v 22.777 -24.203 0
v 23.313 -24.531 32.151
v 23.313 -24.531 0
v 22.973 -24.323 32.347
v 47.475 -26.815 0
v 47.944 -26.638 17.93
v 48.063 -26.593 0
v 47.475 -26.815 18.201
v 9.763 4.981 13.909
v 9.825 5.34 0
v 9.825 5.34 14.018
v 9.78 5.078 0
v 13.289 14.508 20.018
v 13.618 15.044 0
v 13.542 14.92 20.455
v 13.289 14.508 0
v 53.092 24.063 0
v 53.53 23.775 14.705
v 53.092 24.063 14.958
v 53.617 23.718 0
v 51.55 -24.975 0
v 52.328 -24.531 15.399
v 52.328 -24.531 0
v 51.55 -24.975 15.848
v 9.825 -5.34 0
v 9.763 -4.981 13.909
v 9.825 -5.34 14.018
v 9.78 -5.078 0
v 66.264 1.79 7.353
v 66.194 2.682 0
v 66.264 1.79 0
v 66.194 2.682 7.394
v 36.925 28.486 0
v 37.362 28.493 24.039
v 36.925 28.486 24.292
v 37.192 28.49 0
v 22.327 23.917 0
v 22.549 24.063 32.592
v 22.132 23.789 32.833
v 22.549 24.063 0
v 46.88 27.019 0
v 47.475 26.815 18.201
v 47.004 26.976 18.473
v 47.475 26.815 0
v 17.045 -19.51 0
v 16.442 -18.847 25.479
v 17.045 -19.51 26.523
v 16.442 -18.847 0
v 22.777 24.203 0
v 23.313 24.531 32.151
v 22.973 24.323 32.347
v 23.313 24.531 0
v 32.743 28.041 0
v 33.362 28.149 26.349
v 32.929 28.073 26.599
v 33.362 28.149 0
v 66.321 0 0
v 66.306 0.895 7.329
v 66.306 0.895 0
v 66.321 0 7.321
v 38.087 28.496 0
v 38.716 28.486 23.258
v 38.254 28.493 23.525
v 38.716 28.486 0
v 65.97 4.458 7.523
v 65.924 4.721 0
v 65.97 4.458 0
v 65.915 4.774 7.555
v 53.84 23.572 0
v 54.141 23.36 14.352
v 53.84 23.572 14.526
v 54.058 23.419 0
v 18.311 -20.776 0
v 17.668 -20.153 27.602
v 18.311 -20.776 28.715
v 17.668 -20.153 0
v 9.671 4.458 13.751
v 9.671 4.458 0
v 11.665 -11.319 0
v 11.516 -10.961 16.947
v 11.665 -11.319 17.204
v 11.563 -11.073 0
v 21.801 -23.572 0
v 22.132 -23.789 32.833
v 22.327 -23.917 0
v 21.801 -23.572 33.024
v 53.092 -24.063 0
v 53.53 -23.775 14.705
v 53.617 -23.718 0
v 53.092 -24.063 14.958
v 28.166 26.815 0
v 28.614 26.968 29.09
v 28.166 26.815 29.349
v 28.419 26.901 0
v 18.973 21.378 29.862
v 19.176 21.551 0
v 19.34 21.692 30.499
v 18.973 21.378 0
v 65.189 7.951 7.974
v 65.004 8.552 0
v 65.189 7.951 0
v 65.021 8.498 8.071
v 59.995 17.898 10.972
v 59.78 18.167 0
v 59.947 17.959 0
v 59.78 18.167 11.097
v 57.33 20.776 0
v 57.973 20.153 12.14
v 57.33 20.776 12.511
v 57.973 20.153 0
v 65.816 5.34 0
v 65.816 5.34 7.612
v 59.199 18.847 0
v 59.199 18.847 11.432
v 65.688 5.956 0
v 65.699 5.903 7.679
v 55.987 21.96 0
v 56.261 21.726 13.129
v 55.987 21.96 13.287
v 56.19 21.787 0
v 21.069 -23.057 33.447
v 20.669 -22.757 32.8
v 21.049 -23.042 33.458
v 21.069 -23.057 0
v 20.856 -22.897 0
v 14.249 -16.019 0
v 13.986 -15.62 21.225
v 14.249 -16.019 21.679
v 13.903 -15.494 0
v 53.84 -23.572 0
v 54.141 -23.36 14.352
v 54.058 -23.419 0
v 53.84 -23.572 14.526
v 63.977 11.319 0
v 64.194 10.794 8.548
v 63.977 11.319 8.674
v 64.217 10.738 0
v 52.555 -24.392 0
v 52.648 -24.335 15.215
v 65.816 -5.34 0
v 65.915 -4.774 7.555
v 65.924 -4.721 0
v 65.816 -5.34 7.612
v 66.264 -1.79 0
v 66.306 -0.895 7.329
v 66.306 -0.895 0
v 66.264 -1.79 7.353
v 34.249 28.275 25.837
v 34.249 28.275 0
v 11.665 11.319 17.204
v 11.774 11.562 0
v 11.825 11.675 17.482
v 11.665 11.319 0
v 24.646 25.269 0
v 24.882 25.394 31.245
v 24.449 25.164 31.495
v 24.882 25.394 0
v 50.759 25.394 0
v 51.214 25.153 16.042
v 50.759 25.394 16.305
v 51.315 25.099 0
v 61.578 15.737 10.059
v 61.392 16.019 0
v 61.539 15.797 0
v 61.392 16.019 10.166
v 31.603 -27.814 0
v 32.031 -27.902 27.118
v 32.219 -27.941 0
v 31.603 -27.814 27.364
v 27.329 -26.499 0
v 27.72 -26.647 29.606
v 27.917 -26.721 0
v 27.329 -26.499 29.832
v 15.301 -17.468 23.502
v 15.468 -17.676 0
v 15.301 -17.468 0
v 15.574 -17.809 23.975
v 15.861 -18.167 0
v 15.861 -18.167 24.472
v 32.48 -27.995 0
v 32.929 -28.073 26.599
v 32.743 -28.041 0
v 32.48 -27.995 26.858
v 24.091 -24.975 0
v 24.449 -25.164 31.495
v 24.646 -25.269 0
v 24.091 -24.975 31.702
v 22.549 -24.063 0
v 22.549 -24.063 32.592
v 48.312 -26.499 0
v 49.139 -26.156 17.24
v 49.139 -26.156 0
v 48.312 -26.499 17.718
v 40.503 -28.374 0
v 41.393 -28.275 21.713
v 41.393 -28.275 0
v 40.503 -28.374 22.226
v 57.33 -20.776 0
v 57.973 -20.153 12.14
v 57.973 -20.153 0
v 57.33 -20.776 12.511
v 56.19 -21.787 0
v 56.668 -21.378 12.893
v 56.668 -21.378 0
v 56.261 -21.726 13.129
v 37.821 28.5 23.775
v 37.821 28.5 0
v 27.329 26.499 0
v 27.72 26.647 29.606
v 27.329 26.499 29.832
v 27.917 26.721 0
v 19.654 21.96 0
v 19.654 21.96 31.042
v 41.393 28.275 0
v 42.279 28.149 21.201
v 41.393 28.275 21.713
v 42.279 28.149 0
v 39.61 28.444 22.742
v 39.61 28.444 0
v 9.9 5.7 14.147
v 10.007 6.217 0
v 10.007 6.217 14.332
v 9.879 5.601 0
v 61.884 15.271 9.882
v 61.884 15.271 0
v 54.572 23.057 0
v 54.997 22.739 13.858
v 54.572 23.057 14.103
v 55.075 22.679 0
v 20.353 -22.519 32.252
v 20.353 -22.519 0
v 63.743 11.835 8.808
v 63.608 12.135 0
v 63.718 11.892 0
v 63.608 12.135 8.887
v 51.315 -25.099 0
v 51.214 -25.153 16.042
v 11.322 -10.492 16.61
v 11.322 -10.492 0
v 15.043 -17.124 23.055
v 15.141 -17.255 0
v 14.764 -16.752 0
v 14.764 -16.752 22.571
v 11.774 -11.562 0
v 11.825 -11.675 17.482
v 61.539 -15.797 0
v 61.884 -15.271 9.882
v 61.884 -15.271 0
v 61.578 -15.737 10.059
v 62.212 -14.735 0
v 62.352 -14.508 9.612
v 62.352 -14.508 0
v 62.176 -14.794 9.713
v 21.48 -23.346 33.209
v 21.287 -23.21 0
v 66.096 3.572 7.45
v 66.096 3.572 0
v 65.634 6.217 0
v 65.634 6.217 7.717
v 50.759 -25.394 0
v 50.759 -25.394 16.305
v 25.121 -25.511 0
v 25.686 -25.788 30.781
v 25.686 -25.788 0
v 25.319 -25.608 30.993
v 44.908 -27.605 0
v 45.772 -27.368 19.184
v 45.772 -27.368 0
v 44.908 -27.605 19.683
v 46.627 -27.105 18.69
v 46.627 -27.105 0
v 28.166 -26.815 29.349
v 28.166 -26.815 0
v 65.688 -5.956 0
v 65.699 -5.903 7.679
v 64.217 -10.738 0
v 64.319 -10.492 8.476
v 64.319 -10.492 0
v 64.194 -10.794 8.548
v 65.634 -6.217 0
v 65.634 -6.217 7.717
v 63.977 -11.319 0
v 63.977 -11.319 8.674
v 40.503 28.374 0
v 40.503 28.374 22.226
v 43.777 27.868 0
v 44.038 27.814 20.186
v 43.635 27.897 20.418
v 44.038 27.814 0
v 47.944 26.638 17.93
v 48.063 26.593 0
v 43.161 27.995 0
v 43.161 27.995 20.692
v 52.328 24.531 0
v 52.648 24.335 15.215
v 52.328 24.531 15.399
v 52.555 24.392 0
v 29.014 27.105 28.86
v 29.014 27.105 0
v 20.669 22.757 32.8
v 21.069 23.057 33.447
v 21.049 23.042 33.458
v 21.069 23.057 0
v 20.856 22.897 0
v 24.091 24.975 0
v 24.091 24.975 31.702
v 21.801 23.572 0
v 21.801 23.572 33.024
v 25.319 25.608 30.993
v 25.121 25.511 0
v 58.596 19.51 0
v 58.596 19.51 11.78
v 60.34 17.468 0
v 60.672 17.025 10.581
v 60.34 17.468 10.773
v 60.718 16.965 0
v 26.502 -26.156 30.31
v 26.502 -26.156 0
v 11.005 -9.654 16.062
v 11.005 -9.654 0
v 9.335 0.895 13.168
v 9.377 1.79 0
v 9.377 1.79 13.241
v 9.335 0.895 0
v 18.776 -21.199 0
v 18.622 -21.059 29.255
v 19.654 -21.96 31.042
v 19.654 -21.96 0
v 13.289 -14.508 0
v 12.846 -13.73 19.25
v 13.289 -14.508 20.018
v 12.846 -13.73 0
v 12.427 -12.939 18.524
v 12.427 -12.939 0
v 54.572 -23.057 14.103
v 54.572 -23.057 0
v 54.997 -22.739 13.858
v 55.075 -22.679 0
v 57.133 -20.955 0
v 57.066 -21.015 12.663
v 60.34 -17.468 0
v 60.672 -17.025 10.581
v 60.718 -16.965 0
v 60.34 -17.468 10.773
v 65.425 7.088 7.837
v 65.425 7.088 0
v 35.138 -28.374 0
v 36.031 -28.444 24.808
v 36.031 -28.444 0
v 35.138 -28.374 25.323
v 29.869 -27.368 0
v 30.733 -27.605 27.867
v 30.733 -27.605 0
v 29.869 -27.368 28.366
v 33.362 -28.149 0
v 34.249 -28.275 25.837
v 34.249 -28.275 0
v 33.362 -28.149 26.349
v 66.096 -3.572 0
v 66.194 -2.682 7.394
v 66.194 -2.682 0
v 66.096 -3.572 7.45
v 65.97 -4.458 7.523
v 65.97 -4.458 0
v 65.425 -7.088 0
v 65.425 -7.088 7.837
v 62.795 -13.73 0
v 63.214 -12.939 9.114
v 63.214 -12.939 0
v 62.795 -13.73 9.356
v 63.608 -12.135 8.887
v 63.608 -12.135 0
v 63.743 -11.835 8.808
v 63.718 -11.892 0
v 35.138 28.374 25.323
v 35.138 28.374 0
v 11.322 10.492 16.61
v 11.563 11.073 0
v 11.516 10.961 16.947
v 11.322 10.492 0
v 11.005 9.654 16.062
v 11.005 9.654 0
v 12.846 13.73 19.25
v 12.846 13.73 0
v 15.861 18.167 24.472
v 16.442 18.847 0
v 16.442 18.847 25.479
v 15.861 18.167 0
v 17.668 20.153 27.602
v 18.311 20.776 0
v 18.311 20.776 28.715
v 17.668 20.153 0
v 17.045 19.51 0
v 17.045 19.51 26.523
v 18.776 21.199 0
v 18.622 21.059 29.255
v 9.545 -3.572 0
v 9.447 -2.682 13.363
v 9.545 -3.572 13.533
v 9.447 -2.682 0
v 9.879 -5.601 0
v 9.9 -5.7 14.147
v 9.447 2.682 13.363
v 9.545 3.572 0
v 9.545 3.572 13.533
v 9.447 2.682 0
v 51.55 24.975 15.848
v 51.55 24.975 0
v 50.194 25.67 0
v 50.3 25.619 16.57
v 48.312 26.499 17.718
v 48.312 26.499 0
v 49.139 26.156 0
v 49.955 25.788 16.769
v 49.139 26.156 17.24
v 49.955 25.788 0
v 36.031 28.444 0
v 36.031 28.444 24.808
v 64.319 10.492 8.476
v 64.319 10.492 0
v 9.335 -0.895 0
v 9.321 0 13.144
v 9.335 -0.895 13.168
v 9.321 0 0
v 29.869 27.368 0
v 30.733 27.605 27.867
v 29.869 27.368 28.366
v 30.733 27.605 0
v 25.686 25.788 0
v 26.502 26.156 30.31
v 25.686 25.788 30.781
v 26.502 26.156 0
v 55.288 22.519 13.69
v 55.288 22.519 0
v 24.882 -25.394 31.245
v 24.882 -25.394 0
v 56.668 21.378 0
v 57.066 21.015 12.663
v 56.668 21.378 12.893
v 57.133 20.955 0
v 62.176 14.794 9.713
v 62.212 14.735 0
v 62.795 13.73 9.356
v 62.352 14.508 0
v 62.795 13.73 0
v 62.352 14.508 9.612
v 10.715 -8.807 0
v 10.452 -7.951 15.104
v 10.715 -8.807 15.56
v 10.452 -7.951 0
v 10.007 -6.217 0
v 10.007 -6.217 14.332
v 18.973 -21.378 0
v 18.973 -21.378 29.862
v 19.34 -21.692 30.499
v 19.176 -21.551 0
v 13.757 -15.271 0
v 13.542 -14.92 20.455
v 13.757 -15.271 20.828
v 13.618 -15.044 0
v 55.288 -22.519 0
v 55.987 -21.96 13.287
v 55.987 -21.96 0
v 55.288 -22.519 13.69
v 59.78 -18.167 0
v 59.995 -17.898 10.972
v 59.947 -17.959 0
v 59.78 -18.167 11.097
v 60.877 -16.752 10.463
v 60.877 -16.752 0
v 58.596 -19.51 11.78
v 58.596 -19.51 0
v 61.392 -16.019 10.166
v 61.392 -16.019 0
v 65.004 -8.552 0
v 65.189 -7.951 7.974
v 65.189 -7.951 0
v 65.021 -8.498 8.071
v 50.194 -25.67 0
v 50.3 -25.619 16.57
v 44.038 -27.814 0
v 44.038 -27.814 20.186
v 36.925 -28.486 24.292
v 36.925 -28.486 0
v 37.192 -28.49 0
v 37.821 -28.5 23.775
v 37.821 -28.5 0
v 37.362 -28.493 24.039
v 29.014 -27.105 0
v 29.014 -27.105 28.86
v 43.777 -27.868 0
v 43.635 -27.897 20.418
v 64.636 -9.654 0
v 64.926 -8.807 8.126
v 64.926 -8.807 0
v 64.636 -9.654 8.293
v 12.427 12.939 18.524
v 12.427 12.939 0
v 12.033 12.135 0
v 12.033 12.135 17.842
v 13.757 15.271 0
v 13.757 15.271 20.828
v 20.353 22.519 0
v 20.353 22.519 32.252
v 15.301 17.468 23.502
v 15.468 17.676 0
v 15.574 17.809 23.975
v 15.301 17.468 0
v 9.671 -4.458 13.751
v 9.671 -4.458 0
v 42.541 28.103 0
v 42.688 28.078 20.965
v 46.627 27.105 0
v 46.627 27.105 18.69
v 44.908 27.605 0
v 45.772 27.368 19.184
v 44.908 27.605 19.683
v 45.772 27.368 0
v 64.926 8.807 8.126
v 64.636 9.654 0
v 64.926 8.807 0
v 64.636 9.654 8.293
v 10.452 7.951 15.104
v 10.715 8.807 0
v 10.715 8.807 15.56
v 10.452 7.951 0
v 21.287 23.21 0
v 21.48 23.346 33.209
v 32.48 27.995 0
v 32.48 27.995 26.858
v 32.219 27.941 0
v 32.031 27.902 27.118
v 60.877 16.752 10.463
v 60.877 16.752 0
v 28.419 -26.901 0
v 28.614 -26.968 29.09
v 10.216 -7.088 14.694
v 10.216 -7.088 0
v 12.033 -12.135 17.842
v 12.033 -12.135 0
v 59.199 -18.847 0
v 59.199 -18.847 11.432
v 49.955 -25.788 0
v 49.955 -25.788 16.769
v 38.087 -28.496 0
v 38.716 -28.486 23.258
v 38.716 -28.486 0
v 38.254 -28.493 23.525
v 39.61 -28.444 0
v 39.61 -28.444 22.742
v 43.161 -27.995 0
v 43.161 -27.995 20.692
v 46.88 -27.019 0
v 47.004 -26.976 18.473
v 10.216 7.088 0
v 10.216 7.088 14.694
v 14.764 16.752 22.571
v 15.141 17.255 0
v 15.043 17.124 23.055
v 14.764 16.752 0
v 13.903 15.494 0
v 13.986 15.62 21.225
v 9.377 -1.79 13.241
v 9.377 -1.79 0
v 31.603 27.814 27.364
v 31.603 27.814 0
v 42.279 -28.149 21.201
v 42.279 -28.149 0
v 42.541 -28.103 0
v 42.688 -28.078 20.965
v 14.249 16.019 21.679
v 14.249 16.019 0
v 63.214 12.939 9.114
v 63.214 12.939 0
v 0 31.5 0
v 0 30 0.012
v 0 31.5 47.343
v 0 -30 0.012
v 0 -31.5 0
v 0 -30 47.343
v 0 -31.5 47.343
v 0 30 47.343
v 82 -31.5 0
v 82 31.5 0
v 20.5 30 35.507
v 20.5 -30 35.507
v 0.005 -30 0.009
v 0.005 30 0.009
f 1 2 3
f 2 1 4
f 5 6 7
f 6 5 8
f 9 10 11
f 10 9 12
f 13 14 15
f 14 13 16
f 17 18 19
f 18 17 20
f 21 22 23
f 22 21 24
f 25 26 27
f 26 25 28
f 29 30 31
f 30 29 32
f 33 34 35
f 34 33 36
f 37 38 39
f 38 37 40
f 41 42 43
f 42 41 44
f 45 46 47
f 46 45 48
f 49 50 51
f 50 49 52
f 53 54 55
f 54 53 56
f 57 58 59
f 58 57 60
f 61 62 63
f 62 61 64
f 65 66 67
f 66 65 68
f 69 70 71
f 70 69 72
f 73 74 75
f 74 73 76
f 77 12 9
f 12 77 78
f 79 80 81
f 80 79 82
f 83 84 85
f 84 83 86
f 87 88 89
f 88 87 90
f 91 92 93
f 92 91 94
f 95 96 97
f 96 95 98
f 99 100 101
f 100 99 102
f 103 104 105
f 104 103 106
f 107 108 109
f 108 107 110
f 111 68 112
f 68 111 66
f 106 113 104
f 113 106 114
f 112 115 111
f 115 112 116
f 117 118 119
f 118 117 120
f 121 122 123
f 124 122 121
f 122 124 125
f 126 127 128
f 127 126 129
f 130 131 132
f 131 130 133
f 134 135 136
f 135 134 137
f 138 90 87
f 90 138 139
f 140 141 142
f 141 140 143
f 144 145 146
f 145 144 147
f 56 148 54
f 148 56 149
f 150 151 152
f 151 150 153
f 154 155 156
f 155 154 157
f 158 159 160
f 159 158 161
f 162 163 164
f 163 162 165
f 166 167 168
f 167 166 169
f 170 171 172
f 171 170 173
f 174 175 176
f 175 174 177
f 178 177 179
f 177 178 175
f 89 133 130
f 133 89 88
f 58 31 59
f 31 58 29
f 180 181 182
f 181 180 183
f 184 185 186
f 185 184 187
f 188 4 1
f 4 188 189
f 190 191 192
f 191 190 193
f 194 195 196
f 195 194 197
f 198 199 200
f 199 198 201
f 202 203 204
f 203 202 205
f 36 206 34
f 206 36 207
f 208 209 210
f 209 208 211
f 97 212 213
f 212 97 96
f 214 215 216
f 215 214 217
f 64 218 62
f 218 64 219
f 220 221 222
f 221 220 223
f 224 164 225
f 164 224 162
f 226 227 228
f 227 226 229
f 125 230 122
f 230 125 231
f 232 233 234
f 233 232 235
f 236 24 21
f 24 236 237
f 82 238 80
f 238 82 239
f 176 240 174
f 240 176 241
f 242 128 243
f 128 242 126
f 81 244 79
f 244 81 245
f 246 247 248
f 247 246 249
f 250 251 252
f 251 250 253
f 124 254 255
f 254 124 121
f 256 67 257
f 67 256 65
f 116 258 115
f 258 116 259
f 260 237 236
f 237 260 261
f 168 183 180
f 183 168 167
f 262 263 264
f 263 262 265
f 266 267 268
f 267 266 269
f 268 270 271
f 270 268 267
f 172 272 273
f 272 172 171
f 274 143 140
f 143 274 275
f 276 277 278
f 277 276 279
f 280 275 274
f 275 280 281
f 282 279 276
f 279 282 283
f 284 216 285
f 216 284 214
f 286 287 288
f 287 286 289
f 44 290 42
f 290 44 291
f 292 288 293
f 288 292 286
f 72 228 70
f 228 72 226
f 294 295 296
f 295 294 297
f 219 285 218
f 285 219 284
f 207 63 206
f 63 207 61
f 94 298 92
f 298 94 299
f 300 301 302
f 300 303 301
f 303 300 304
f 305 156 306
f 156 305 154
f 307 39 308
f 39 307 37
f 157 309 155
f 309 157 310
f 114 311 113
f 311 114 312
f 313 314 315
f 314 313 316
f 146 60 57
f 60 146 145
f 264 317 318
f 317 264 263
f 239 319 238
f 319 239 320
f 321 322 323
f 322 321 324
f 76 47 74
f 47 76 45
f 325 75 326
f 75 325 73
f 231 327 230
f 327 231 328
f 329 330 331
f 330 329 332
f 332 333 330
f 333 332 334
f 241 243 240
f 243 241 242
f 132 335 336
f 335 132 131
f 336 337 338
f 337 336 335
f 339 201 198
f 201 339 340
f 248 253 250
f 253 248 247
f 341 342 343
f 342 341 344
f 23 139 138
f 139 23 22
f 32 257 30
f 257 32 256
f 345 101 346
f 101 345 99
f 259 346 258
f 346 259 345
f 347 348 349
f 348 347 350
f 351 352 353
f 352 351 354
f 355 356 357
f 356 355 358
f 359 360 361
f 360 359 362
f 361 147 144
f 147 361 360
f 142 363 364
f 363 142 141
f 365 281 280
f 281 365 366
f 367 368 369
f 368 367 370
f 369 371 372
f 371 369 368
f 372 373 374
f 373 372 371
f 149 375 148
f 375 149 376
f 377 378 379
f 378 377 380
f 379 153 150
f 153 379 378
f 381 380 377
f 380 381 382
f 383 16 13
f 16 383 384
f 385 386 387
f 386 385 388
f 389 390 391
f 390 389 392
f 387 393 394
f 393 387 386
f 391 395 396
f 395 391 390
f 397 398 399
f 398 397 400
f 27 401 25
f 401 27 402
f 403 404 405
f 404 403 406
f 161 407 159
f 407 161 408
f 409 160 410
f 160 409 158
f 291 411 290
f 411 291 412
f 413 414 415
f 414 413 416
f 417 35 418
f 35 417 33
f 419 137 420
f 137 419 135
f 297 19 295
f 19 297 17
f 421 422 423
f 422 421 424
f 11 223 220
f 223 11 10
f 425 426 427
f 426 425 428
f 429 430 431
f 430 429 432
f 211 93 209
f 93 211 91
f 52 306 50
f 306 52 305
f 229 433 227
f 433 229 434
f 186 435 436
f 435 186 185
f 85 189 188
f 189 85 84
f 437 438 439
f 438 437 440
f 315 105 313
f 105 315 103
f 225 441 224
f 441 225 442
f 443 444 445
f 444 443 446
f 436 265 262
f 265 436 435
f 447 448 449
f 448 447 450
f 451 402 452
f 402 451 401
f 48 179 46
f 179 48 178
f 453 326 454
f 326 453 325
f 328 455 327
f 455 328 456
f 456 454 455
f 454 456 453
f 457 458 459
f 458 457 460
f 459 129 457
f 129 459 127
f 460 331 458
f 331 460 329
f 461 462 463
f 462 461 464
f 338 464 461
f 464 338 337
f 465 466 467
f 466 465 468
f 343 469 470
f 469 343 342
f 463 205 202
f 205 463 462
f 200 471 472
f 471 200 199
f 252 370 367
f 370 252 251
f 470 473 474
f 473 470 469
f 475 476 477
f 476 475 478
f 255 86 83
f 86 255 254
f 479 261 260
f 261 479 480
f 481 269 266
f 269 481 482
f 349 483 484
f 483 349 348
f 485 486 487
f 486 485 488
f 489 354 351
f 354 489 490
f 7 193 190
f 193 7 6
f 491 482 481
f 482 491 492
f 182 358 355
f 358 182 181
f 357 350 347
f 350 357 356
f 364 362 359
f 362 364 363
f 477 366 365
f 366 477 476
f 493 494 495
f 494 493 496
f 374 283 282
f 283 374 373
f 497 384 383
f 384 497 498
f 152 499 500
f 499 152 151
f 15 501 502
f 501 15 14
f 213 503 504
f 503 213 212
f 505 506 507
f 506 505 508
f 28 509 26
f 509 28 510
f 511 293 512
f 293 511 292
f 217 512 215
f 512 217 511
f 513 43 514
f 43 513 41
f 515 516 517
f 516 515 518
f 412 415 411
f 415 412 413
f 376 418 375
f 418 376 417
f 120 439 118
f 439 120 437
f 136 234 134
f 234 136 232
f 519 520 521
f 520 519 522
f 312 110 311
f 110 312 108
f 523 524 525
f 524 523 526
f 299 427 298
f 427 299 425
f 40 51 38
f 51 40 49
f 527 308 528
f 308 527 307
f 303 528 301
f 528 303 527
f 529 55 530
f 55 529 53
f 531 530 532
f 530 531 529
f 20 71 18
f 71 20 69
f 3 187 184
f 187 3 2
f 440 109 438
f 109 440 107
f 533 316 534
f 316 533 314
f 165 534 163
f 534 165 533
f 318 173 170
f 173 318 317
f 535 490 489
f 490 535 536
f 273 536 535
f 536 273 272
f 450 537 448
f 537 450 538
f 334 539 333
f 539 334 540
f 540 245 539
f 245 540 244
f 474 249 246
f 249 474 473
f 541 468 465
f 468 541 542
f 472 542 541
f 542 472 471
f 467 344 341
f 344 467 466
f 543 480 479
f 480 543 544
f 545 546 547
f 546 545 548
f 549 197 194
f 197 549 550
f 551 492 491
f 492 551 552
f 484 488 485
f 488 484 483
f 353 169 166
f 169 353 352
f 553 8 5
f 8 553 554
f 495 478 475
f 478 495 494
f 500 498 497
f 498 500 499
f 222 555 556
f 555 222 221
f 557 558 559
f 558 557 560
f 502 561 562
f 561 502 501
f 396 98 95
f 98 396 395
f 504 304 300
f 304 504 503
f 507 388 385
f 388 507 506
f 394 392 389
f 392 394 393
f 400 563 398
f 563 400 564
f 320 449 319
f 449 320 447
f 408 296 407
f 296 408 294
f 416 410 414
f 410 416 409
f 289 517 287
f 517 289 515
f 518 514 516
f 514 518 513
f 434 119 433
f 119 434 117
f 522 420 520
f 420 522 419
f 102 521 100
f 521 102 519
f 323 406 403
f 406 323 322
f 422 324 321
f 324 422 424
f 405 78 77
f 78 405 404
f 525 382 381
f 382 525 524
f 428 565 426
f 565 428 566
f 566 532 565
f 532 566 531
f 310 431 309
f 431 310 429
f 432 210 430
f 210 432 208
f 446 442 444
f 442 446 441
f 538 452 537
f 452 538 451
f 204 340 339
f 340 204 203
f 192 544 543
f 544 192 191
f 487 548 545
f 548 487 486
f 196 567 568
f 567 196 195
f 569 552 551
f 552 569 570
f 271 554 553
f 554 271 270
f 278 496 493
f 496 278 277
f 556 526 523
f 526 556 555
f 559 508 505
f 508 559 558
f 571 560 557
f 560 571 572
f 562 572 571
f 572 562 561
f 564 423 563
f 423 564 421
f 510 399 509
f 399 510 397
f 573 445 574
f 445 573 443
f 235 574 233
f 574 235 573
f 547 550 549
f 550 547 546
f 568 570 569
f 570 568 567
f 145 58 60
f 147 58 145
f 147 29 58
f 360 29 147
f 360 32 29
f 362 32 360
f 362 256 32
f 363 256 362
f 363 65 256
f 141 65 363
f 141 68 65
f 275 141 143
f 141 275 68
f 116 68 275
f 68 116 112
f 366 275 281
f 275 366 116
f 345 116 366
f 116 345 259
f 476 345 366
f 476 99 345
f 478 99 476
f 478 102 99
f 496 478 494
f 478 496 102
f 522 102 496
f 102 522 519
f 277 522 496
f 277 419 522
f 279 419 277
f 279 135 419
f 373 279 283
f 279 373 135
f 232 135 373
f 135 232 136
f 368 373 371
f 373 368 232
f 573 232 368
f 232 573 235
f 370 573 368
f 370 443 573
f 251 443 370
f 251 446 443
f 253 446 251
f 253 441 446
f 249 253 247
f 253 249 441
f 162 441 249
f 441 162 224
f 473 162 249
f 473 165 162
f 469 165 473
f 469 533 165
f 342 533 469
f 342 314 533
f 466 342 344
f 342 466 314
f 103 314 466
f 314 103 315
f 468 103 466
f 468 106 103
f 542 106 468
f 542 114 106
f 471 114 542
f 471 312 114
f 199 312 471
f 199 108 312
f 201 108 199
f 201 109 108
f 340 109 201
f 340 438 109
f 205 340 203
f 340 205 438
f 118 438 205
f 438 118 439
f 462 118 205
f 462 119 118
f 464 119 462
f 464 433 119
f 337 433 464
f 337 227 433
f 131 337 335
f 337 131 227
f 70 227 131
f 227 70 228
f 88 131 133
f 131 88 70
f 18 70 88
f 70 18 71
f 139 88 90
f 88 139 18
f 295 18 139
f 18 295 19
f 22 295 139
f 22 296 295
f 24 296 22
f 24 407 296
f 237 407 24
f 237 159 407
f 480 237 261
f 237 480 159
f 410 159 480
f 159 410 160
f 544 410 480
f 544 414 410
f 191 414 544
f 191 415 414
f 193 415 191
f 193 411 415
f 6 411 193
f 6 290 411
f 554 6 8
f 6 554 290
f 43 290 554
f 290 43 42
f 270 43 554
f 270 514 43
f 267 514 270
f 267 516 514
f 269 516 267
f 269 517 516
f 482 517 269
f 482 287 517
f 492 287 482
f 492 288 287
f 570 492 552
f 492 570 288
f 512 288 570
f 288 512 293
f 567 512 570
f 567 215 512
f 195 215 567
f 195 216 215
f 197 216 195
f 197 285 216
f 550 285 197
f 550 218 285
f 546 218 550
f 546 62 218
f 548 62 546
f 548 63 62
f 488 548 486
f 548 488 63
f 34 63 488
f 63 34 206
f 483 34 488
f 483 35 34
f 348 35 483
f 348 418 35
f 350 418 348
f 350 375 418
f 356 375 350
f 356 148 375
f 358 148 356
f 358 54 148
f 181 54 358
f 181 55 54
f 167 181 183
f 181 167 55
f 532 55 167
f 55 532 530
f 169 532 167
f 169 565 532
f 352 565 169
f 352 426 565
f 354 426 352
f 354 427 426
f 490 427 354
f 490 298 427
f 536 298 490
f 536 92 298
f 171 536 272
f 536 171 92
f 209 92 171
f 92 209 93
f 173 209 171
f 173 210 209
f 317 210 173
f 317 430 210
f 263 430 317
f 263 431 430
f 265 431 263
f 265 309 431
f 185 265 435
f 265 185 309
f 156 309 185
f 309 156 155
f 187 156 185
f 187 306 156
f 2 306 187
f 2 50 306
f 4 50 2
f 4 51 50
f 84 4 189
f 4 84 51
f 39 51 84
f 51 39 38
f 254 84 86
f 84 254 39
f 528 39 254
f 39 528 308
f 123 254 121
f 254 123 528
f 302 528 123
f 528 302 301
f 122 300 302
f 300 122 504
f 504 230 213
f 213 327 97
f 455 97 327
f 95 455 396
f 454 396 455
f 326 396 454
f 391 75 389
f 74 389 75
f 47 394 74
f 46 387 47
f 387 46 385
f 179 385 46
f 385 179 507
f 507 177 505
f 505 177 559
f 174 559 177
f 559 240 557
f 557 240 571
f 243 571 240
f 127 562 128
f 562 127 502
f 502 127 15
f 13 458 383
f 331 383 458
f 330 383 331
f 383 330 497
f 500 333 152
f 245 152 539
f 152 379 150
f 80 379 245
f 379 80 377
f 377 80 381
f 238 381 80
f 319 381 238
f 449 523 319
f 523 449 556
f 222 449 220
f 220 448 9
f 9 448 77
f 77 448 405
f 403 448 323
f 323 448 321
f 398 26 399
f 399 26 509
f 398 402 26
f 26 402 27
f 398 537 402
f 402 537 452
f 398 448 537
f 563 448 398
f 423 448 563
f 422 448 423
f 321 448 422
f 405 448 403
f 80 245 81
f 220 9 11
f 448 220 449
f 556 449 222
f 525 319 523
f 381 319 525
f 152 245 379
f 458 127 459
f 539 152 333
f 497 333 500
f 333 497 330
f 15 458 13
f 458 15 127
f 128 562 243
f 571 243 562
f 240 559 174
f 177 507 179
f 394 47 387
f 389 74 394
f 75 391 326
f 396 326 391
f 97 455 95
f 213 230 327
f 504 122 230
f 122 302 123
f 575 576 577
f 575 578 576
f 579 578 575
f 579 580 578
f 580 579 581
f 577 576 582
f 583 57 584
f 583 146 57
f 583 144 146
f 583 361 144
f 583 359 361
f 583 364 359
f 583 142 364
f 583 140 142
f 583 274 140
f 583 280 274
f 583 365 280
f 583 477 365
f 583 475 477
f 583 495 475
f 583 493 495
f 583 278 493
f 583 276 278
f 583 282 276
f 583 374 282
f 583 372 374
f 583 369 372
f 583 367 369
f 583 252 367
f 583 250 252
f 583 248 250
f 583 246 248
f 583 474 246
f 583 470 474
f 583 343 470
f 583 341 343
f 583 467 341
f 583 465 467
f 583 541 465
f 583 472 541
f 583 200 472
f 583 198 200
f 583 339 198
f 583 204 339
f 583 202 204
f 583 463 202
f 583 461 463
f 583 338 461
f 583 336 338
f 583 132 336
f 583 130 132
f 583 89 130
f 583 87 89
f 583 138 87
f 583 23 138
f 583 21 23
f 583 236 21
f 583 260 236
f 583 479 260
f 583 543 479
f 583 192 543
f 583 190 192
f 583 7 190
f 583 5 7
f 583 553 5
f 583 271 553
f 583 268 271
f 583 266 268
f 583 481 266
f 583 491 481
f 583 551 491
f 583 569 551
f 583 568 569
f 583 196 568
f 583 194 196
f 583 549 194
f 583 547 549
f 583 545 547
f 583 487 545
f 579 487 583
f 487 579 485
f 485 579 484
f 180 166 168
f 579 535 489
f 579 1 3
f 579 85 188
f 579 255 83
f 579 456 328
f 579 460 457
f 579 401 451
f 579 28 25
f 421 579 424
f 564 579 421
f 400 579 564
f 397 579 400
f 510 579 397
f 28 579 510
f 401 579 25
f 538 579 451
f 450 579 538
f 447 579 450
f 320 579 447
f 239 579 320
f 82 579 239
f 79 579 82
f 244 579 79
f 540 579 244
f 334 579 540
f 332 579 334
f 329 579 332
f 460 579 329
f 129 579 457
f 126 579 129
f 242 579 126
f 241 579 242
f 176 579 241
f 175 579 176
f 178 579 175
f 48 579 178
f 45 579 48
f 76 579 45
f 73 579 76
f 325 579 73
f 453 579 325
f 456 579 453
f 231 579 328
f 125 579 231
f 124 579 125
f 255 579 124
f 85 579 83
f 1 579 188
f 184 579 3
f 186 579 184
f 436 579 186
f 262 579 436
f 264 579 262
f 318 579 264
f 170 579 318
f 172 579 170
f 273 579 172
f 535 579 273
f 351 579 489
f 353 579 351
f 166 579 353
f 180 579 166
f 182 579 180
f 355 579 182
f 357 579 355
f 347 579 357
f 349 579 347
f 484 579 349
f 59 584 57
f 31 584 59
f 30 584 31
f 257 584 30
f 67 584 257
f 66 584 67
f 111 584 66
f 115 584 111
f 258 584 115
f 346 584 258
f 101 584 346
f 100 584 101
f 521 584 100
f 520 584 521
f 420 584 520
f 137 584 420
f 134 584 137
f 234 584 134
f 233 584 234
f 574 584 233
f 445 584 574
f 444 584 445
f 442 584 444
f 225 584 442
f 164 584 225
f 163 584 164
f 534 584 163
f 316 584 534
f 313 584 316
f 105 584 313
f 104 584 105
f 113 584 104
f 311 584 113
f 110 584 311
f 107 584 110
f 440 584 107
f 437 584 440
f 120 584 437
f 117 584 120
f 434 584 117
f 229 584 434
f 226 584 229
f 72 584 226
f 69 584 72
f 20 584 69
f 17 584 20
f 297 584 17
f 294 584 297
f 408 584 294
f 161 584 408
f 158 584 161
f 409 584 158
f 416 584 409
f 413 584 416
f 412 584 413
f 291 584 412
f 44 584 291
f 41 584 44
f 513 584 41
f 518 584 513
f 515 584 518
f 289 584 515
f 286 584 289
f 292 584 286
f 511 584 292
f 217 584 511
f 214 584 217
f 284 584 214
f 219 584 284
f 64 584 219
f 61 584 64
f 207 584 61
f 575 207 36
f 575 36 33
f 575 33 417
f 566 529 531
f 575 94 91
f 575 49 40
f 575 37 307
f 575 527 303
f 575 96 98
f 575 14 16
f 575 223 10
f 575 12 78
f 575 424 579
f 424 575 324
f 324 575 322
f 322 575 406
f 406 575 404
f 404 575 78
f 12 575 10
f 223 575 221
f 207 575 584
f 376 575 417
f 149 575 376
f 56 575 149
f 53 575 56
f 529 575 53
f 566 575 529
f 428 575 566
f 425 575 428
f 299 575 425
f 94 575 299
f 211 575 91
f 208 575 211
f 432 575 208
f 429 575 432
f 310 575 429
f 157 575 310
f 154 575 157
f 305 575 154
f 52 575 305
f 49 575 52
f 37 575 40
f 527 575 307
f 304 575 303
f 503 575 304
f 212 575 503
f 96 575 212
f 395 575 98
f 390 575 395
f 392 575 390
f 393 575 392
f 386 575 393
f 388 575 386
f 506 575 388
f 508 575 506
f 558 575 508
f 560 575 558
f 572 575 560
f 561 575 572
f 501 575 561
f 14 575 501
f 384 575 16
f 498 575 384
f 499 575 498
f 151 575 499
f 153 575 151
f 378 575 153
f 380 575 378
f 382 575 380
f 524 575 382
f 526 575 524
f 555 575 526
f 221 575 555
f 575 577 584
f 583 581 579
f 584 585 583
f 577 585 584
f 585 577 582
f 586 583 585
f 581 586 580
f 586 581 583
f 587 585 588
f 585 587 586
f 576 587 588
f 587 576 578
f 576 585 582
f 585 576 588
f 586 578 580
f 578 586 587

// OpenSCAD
// file: context.inc.scad
WALL_THICKNESS = 1.5;
HEIGHT = 41;
WIDTH  = 60 + WALL_THICKNESS*2;
LENGTH = 41;

module context() {
    translate([-100, -WIDTH/2, 0])
    cube([100, WIDTH, HEIGHT]);

    translate([0, 0, HEIGHT])
    cylinder(r=150, h=.1);


    translate([0, -WIDTH/2, HEIGHT-1])
    cube([LENGTH, WIDTH, 1]);
}

%context();
// main file
// https://www.thingiverse.com/thing:4659787
include <context.inc.scad>

THICKNESS = 1.5;
ANGLE = 30; //45;
ATOM = 0.01;

module raw_head() {
    scale(1.25)
    translate([0, -37, 65])
    rotate([0, 30, 0])
    rotate([180, 0, 90])
    import("Dragon_D_fixed.stl", convexity=200);
}


module end_piece() {
    difference() {
        // body
        rotate([0, -ANGLE, 0])
        translate([0, -WIDTH/2, 0])
        cube([HEIGHT*3, WIDTH, HEIGHT*2]);

        // pipe
        h = WIDTH*2;
        d = WIDTH -6;
        intersection() {
            if(0)
            translate([0, 0, HEIGHT])
            rotate([0, -60, 0])
            cylinder(d=d, h=h, center=true, $fn=200);

            translate([20, 0, HEIGHT])
            rotate([0, -ANGLE, 0])
            cylinder(d=d, h=h, center=true, $fn=200);

            translate([THICKNESS, -WIDTH/2, -THICKNESS])
            cube([HEIGHT*2, WIDTH, HEIGHT]);
        }

        // skewed face
        if(0)
        rotate([0, -ANGLE, 0])
        translate([0, 0, -h])
        cylinder(d=d*4, h=h);
        
        // top base
        translate([0, 0, HEIGHT])
        cylinder(d=d*10, h=h);

        //
        translate([-HEIGHT, -WIDTH/2 + WALL_THICKNESS, ATOM])
        cube([HEIGHT, WIDTH - WALL_THICKNESS*2, HEIGHT]);
        
    }
}


rotate([0, ANGLE, 0])
{
    if (0)
    translate([-2, 0, 0])
    %raw_head();

    end_piece();
}
